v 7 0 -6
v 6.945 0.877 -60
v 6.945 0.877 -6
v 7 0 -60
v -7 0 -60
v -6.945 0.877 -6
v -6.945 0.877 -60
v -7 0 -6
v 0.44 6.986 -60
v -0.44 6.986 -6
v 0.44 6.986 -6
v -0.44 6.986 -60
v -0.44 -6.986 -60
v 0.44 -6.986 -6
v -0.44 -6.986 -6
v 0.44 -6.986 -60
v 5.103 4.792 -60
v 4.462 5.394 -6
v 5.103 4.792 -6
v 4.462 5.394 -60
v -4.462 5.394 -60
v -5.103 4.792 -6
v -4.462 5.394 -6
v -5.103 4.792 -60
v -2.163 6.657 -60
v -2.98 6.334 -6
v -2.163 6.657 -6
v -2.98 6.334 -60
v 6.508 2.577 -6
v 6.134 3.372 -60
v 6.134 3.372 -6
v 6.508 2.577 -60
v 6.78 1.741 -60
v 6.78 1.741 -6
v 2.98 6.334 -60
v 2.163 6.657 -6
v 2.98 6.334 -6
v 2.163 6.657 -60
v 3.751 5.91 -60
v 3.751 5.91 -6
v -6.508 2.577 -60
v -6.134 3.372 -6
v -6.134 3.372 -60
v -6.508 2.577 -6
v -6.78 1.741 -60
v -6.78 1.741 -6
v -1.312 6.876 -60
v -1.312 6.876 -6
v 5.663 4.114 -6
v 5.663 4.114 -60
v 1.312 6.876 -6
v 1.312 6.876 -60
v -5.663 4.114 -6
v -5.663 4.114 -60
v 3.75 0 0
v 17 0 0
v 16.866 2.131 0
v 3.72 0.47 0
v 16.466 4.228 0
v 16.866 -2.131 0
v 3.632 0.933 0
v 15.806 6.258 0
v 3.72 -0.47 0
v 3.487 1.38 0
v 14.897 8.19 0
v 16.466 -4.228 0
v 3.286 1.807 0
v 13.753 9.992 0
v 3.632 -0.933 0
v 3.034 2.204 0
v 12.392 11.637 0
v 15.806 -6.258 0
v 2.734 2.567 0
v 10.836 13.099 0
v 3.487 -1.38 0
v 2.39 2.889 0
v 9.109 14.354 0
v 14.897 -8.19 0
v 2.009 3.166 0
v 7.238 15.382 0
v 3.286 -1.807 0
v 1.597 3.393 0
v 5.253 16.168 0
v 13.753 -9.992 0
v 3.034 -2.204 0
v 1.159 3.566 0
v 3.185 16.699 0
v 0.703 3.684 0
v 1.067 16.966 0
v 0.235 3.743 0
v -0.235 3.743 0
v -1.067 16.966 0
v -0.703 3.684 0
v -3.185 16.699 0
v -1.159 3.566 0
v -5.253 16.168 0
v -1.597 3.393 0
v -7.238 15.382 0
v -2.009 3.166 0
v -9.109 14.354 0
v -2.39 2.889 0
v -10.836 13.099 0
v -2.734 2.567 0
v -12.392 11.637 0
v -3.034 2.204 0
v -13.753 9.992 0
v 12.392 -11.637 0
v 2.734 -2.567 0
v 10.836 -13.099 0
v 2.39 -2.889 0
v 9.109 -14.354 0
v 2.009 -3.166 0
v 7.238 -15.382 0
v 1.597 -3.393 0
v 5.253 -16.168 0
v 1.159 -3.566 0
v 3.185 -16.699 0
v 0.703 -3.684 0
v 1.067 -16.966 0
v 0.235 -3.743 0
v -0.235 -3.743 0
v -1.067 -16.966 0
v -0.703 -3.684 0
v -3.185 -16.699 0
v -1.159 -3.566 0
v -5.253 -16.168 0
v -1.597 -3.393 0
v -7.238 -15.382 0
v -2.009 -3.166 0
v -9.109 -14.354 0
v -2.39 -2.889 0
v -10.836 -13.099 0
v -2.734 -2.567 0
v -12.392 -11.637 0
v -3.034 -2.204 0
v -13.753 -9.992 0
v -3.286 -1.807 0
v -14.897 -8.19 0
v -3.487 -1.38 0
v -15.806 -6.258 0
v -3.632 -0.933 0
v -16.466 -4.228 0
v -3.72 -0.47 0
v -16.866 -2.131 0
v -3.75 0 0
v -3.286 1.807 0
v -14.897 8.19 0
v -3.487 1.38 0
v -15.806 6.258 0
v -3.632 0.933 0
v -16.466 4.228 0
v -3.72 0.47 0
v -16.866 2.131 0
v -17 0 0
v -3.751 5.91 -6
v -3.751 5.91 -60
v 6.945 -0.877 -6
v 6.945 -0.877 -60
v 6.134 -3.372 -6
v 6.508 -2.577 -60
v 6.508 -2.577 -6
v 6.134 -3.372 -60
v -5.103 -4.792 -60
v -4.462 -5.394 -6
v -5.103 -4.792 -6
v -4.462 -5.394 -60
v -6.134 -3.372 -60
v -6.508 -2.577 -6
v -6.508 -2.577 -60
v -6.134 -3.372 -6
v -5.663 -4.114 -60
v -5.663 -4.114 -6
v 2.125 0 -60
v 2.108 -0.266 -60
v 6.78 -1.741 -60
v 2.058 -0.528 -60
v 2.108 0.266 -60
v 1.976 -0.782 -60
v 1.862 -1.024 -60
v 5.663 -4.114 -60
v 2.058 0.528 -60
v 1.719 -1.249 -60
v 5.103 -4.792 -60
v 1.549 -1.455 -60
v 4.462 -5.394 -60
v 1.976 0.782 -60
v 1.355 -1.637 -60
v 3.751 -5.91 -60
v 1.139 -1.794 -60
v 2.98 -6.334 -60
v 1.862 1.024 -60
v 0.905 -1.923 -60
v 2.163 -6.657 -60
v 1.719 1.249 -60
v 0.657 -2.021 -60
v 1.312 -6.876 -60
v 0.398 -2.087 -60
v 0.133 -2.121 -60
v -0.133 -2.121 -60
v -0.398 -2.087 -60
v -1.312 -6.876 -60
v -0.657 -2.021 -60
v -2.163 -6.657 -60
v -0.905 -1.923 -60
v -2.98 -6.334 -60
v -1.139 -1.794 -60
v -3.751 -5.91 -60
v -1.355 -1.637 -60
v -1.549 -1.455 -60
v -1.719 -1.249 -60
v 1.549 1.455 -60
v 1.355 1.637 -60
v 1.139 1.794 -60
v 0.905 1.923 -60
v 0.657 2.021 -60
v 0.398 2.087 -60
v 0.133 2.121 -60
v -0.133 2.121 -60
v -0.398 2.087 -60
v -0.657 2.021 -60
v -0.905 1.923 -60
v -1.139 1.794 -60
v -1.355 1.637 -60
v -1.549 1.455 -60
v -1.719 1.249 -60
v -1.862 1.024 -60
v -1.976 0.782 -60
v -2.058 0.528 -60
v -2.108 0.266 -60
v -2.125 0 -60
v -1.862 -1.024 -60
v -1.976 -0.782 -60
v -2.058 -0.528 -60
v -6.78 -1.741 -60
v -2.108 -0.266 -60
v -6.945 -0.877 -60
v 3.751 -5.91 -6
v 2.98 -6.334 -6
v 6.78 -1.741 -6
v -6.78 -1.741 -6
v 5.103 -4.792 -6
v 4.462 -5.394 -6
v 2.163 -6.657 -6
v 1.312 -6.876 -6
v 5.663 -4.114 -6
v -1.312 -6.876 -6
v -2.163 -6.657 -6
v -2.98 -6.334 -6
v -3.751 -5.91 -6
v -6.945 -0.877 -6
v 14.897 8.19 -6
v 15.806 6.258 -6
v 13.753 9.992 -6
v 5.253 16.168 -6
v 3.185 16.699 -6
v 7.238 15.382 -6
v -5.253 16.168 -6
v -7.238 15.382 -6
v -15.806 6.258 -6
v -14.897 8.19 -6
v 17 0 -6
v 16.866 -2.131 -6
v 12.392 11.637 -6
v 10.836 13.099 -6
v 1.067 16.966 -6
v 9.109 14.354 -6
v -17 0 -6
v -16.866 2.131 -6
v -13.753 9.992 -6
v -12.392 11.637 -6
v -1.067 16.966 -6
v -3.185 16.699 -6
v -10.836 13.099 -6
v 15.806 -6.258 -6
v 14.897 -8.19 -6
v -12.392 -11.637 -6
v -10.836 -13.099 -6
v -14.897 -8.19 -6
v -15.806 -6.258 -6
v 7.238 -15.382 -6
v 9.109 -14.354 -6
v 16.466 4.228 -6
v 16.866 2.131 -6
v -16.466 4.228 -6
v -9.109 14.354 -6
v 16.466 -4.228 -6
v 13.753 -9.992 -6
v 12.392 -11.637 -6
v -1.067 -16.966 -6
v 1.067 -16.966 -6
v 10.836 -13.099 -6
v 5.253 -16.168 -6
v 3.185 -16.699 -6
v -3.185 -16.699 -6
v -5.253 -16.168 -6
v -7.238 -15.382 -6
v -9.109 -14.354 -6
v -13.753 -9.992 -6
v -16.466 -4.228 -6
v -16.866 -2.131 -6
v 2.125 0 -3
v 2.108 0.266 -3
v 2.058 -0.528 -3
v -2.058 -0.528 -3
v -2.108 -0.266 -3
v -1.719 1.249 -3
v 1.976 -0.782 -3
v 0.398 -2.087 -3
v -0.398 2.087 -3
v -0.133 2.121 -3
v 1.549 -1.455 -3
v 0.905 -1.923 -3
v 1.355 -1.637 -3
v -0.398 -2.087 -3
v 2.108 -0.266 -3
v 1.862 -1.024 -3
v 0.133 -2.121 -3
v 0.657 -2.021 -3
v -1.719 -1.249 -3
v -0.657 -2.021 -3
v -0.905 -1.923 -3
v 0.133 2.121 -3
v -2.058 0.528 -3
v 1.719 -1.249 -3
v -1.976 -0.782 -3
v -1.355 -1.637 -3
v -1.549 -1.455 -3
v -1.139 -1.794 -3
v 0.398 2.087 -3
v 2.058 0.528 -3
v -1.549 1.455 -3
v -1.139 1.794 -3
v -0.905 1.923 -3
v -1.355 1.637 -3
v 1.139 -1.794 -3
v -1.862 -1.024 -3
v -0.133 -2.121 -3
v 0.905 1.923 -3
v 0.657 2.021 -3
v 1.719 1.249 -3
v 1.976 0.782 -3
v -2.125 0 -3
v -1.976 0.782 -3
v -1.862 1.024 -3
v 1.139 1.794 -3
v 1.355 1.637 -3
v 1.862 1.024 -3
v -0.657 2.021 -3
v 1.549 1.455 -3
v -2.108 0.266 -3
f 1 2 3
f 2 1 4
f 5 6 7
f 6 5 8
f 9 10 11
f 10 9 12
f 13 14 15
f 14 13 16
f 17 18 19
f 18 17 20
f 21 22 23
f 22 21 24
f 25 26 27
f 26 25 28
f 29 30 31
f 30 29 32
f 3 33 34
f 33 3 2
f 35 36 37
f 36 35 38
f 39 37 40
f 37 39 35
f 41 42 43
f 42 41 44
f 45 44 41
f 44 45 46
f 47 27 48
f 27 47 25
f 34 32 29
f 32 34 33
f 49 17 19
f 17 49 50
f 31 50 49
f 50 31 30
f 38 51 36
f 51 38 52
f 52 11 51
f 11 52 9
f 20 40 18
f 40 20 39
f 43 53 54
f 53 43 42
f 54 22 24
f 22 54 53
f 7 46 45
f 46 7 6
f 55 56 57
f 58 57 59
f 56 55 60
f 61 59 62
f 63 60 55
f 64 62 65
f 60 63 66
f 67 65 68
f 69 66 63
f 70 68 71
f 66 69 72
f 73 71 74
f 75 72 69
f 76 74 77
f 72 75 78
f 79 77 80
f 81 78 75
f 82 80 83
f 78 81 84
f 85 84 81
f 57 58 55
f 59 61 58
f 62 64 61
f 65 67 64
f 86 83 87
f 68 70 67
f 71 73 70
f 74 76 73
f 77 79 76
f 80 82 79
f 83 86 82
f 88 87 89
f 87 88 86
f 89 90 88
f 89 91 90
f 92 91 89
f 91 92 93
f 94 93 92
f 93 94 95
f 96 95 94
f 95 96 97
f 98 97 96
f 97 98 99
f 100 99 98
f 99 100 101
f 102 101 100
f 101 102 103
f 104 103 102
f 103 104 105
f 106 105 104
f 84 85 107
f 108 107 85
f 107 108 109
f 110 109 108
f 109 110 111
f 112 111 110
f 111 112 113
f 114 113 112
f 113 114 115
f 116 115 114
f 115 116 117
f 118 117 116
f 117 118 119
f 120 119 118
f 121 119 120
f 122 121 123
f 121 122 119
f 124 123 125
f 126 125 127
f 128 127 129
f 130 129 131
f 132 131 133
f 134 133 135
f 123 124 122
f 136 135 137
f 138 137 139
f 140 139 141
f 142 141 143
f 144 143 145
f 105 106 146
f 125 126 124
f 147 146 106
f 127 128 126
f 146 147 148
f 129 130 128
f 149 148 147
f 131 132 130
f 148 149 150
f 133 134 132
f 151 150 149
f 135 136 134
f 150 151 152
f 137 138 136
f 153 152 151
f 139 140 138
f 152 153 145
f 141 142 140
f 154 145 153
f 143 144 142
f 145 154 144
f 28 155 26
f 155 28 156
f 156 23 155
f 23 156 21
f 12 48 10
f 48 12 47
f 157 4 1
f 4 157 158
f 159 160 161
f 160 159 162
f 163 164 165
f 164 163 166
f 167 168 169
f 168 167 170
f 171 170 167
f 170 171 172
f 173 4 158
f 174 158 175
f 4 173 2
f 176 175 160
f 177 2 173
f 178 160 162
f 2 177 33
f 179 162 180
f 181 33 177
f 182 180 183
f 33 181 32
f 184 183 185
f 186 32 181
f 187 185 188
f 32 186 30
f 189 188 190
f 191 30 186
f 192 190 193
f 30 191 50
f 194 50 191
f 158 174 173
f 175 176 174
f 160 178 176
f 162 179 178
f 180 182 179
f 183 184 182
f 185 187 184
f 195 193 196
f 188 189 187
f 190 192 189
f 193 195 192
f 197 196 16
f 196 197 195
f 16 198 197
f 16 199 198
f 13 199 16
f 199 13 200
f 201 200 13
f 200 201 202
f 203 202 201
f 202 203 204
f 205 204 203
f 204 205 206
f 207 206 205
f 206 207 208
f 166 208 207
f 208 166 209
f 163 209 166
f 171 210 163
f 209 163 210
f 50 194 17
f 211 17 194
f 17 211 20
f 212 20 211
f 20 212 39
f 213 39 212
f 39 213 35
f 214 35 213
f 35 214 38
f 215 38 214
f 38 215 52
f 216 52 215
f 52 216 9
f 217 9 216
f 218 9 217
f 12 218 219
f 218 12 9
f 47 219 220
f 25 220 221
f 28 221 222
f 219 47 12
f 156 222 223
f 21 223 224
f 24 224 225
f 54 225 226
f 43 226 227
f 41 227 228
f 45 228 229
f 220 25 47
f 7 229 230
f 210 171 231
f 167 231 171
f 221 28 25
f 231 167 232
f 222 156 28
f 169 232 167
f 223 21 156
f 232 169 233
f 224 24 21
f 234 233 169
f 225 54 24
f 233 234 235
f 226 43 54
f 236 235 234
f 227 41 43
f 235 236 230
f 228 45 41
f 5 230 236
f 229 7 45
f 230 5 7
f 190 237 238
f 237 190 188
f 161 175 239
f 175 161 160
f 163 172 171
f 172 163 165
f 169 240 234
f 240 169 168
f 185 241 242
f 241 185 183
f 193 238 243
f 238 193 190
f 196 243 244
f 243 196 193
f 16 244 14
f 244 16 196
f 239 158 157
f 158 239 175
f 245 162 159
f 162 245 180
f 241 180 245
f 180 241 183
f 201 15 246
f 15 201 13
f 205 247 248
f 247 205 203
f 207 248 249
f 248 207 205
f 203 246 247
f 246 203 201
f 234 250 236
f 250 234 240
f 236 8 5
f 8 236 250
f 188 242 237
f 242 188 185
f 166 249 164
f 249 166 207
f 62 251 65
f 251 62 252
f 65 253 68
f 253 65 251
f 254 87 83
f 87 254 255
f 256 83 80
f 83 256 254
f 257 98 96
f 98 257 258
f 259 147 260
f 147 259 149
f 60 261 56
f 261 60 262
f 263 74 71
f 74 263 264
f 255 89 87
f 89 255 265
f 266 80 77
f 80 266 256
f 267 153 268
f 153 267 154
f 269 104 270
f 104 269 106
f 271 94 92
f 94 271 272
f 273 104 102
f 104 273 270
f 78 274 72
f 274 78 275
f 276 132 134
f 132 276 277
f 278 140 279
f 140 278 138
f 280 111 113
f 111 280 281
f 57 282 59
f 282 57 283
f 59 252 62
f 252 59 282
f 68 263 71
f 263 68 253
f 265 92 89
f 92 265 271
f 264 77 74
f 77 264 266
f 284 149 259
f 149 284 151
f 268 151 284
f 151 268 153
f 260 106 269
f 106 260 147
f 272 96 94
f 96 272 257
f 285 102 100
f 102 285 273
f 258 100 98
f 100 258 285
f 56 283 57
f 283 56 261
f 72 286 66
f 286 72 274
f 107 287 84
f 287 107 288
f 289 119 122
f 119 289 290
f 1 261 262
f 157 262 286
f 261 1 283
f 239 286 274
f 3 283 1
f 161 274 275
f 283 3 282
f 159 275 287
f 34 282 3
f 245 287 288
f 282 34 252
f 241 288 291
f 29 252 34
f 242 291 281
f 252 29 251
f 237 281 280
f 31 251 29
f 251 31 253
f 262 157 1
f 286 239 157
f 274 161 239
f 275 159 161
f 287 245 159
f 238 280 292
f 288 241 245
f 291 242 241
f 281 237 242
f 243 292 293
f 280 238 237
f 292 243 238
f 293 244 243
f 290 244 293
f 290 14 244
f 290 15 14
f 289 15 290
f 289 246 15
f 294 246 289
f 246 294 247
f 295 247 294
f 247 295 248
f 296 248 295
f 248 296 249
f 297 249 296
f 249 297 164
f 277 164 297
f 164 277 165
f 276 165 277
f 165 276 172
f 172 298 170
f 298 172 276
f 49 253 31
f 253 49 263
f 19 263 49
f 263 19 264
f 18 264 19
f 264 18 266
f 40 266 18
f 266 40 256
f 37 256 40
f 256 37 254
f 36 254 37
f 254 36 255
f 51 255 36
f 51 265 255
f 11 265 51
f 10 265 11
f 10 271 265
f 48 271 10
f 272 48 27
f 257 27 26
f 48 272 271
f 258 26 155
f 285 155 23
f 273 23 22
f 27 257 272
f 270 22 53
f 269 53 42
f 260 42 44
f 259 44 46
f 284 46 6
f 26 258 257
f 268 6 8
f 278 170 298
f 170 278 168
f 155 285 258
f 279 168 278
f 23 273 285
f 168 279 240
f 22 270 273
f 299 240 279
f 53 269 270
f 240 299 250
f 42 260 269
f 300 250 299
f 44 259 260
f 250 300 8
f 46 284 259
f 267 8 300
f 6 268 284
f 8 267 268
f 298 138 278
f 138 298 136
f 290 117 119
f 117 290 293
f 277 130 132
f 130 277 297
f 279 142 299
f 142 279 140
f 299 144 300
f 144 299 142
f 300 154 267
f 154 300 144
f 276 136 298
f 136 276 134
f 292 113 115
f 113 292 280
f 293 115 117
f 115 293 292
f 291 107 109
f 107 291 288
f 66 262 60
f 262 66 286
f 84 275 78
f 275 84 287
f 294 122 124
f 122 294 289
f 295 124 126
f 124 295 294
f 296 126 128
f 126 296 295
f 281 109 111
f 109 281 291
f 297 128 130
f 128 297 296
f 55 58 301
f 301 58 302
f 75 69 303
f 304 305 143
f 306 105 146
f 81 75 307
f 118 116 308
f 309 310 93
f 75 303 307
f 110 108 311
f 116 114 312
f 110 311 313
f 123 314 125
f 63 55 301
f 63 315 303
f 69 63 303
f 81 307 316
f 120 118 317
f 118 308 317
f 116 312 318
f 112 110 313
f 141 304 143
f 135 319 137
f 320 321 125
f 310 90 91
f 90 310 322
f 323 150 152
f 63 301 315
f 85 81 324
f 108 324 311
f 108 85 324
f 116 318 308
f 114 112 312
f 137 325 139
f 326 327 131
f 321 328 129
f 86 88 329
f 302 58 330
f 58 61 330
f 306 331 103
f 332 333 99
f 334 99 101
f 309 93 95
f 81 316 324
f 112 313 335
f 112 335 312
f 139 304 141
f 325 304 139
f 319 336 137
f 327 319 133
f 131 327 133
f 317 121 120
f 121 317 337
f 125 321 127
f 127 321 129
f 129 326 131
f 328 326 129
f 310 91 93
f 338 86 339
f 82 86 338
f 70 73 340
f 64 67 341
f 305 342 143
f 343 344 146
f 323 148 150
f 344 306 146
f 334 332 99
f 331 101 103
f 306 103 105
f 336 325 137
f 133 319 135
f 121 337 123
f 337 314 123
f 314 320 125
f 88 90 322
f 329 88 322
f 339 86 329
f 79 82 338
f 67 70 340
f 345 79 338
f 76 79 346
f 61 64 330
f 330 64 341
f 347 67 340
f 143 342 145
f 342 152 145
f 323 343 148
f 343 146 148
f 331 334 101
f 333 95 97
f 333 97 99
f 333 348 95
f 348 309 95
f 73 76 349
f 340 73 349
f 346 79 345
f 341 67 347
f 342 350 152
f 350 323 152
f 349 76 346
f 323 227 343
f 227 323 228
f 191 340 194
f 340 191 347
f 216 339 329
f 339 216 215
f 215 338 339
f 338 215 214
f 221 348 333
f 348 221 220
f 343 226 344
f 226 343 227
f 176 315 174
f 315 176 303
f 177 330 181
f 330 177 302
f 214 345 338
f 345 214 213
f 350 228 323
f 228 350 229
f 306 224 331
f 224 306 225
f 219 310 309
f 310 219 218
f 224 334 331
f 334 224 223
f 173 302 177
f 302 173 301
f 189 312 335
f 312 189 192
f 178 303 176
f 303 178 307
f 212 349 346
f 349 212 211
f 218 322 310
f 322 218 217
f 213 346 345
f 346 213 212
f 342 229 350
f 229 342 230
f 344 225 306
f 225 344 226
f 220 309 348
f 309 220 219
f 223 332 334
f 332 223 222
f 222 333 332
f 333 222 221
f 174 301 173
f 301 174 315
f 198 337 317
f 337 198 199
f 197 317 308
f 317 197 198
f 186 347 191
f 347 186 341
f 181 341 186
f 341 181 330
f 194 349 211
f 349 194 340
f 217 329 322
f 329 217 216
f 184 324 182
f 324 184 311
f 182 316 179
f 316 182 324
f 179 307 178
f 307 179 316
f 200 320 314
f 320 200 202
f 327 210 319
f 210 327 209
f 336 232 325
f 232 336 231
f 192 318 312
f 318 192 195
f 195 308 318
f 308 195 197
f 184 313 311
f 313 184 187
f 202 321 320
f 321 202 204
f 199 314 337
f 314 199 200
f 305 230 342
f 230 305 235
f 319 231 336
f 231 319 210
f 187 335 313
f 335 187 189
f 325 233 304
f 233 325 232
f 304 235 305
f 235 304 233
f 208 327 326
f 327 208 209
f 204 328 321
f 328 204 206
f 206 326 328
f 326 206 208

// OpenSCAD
$fn = 50;


difference() {
	union() {
		translate(v = [0, 0, -60.0000000000]) {
			cylinder(h = 60, r = 7.0000000000);
		}
		translate(v = [0, 0, -6.0000000000]) {
			cylinder(h = 6, r = 17.0000000000);
		}
	}
	union() {
		translate(v = [0, 0, 0]) {
			rotate(a = [0, 0, 0]) {
				difference() {
					union() {
						#translate(v = [0, 0, -60.0000000000]) {
							cylinder(h = 60, r = 2.0000000000);
						}
						#translate(v = [0, 0, -3]) {
							cylinder(h = 3, r = 7.0000000000, r1 = 2.1250000000, r2 = 3.7500000000);
						}
						#translate(v = [0, 0, -60.0000000000]) {
							cylinder(h = 60, r = 2.1250000000);
						}
						#translate(v = [0, 0, -60.0000000000]) {
							cylinder(h = 60, r = 2.0000000000);
						}
					}
					union();
				}
			}
		}
	}
}
